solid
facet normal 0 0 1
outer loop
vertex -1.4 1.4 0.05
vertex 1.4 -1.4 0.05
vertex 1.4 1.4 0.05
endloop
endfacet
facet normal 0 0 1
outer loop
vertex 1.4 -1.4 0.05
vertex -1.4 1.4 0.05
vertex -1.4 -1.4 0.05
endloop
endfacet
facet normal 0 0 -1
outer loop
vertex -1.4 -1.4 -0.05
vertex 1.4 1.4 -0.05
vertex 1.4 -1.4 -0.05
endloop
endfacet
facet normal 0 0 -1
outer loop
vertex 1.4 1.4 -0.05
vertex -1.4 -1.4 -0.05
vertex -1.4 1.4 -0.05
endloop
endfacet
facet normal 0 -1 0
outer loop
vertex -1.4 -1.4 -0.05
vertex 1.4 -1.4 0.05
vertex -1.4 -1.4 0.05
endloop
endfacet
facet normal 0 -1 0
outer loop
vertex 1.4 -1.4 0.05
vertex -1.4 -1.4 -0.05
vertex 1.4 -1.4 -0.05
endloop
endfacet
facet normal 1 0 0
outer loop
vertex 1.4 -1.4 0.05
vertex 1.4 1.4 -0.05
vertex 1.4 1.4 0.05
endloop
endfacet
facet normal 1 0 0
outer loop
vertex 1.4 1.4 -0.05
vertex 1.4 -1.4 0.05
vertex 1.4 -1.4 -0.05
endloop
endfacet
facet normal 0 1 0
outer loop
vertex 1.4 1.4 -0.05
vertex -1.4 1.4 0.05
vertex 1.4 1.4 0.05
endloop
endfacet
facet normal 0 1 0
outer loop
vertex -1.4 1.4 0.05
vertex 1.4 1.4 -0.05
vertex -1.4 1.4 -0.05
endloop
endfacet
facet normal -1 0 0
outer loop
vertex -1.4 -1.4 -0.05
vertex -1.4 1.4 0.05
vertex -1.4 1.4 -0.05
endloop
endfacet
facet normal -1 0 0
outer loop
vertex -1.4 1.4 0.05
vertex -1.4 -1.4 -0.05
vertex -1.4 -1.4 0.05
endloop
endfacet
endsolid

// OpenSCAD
// file: lib.scad
function x(v) = v[0];
function y(v) = v[1];
function z(v) = v[2];
function add(v1,v2) = [ for (i = [ 0 : len(v1)-1 ]) v1[i] + v2[i] ];
function xv(d) = [d,0,0];
function yv(d) = [0,d,0];
function zv(d) = [0,0,d];

module box(v) { cube(size=v, center=true); }
module cyl(r1,r2,h) { cylinder(r1=r1, r2=r2, h=h, center=true); }

function grow(n,v) = [x(v)+n*2, y(v)+n*2, z(v)+n*2];

module rbox(v, radius=1) {
	cx = x(v)/2-radius;
	cy = y(v)/2-radius;
	cz = z(v)/2-radius;

	hull() {
		translate([cx,cy,cz]) sphere(r=radius);
		translate([cx,cy,-cz]) sphere(r=radius);
		translate([cx,-cy,cz]) sphere(r=radius);
		translate([cx,-cy,-cz]) sphere(r=radius);
		translate([-cx,cy,cz]) sphere(r=radius);
		translate([-cx,cy,-cz]) sphere(r=radius);
		translate([-cx,-cy,cz]) sphere(r=radius);
		translate([-cx,-cy,-cz]) sphere(r=radius);
	}
}

module fillet(r=1) {
  minkowski() {
    difference() {
      children();
      minkowski() {
        difference() {
          minkowski() {
            children();
            sphere(r=r);
          }
          children();
        }
        sphere(r=r);
      }
    }
    sphere(r=r);
  }
}
// main file
use <lib.scad>

body = [2.8, 2.8, 0.1];

union() {
	box(body);
};
